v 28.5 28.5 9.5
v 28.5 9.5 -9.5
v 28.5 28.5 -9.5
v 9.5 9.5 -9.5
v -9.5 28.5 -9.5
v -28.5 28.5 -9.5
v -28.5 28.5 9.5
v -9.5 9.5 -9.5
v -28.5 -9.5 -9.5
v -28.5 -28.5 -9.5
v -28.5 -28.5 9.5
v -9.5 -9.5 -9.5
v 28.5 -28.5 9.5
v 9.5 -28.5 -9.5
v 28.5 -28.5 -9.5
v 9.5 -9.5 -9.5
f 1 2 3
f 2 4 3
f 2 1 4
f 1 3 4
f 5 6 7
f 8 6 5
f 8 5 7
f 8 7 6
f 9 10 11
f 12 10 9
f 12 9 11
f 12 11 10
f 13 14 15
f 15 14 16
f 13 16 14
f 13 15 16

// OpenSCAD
// file: def.scad
block_size_3 = 19;
block_size_4 = 16;
block_size_5 = 14;
block_size_6 = 12.5;
block_size_7 = 11;
block_size_8 = 10;

inf = 1000;

round_radius = 1;
sticker_margin = 2.5;
sticker_round_radius = 0.75;

module _block(size) {
    minkowski() {
        cube([size - round_radius * 2, size - round_radius * 2, size - round_radius * 2], center = true);
        sphere(r = round_radius, $fn = 24);
    }
}

module _selector_0(size) {
    cube([size - 0.2, size - 0.2, size - 0.2], center = true);
}

module _sticker(size) {
    minkowski() {
        cube([size - sticker_margin * 2, size - sticker_margin * 2, 0.1], center = true);
        cylinder(r = sticker_round_radius, h = 0.1, $fn = 24);
    }
}

module _selector_corner_cw(size) {
    difference() {
        cube([size, size, size], center = true);
        rotate([0, -45, 0])
            translate([-inf, -inf, 0])
                cube([inf * 2, inf * 2, inf]);
        rotate([90, 0, 45])
            translate([-inf, -inf, 0])
                cube([inf * 2, inf * 2, inf]);
    }
}

module _selector_corner_ccw(size) {
    difference() {
        cube([size, size, size], center = true);
        rotate([45, 0, 0])
            translate([-inf, -inf, 0])
                cube([inf * 2, inf * 2, inf]);
        rotate([0, -90, -45])
            translate([-inf, -inf, 0])
                cube([inf * 2, inf * 2, inf]);
    }
}

module _selector_edge_cw(size) {
    difference() {
        cube([size, size, size], center = true);
        rotate([90, 0, 45])
            translate([-inf, -inf, 0])
                cube([inf * 2, inf * 2, inf]);
    }
}

module _selector_edge_ccw(size) {
    difference() {
        cube([size, size, size], center = true);
        rotate([0, -90, -45])
            translate([-inf, -inf, 0])
                cube([inf * 2, inf * 2, inf]);
    }
}
// main file
include <def.scad>

for (deg = [0 : 90 : 270])
    rotate([0, 0, deg])
        translate([block_size_3, block_size_3, 0])
            _selector_corner_ccw(block_size_3);
